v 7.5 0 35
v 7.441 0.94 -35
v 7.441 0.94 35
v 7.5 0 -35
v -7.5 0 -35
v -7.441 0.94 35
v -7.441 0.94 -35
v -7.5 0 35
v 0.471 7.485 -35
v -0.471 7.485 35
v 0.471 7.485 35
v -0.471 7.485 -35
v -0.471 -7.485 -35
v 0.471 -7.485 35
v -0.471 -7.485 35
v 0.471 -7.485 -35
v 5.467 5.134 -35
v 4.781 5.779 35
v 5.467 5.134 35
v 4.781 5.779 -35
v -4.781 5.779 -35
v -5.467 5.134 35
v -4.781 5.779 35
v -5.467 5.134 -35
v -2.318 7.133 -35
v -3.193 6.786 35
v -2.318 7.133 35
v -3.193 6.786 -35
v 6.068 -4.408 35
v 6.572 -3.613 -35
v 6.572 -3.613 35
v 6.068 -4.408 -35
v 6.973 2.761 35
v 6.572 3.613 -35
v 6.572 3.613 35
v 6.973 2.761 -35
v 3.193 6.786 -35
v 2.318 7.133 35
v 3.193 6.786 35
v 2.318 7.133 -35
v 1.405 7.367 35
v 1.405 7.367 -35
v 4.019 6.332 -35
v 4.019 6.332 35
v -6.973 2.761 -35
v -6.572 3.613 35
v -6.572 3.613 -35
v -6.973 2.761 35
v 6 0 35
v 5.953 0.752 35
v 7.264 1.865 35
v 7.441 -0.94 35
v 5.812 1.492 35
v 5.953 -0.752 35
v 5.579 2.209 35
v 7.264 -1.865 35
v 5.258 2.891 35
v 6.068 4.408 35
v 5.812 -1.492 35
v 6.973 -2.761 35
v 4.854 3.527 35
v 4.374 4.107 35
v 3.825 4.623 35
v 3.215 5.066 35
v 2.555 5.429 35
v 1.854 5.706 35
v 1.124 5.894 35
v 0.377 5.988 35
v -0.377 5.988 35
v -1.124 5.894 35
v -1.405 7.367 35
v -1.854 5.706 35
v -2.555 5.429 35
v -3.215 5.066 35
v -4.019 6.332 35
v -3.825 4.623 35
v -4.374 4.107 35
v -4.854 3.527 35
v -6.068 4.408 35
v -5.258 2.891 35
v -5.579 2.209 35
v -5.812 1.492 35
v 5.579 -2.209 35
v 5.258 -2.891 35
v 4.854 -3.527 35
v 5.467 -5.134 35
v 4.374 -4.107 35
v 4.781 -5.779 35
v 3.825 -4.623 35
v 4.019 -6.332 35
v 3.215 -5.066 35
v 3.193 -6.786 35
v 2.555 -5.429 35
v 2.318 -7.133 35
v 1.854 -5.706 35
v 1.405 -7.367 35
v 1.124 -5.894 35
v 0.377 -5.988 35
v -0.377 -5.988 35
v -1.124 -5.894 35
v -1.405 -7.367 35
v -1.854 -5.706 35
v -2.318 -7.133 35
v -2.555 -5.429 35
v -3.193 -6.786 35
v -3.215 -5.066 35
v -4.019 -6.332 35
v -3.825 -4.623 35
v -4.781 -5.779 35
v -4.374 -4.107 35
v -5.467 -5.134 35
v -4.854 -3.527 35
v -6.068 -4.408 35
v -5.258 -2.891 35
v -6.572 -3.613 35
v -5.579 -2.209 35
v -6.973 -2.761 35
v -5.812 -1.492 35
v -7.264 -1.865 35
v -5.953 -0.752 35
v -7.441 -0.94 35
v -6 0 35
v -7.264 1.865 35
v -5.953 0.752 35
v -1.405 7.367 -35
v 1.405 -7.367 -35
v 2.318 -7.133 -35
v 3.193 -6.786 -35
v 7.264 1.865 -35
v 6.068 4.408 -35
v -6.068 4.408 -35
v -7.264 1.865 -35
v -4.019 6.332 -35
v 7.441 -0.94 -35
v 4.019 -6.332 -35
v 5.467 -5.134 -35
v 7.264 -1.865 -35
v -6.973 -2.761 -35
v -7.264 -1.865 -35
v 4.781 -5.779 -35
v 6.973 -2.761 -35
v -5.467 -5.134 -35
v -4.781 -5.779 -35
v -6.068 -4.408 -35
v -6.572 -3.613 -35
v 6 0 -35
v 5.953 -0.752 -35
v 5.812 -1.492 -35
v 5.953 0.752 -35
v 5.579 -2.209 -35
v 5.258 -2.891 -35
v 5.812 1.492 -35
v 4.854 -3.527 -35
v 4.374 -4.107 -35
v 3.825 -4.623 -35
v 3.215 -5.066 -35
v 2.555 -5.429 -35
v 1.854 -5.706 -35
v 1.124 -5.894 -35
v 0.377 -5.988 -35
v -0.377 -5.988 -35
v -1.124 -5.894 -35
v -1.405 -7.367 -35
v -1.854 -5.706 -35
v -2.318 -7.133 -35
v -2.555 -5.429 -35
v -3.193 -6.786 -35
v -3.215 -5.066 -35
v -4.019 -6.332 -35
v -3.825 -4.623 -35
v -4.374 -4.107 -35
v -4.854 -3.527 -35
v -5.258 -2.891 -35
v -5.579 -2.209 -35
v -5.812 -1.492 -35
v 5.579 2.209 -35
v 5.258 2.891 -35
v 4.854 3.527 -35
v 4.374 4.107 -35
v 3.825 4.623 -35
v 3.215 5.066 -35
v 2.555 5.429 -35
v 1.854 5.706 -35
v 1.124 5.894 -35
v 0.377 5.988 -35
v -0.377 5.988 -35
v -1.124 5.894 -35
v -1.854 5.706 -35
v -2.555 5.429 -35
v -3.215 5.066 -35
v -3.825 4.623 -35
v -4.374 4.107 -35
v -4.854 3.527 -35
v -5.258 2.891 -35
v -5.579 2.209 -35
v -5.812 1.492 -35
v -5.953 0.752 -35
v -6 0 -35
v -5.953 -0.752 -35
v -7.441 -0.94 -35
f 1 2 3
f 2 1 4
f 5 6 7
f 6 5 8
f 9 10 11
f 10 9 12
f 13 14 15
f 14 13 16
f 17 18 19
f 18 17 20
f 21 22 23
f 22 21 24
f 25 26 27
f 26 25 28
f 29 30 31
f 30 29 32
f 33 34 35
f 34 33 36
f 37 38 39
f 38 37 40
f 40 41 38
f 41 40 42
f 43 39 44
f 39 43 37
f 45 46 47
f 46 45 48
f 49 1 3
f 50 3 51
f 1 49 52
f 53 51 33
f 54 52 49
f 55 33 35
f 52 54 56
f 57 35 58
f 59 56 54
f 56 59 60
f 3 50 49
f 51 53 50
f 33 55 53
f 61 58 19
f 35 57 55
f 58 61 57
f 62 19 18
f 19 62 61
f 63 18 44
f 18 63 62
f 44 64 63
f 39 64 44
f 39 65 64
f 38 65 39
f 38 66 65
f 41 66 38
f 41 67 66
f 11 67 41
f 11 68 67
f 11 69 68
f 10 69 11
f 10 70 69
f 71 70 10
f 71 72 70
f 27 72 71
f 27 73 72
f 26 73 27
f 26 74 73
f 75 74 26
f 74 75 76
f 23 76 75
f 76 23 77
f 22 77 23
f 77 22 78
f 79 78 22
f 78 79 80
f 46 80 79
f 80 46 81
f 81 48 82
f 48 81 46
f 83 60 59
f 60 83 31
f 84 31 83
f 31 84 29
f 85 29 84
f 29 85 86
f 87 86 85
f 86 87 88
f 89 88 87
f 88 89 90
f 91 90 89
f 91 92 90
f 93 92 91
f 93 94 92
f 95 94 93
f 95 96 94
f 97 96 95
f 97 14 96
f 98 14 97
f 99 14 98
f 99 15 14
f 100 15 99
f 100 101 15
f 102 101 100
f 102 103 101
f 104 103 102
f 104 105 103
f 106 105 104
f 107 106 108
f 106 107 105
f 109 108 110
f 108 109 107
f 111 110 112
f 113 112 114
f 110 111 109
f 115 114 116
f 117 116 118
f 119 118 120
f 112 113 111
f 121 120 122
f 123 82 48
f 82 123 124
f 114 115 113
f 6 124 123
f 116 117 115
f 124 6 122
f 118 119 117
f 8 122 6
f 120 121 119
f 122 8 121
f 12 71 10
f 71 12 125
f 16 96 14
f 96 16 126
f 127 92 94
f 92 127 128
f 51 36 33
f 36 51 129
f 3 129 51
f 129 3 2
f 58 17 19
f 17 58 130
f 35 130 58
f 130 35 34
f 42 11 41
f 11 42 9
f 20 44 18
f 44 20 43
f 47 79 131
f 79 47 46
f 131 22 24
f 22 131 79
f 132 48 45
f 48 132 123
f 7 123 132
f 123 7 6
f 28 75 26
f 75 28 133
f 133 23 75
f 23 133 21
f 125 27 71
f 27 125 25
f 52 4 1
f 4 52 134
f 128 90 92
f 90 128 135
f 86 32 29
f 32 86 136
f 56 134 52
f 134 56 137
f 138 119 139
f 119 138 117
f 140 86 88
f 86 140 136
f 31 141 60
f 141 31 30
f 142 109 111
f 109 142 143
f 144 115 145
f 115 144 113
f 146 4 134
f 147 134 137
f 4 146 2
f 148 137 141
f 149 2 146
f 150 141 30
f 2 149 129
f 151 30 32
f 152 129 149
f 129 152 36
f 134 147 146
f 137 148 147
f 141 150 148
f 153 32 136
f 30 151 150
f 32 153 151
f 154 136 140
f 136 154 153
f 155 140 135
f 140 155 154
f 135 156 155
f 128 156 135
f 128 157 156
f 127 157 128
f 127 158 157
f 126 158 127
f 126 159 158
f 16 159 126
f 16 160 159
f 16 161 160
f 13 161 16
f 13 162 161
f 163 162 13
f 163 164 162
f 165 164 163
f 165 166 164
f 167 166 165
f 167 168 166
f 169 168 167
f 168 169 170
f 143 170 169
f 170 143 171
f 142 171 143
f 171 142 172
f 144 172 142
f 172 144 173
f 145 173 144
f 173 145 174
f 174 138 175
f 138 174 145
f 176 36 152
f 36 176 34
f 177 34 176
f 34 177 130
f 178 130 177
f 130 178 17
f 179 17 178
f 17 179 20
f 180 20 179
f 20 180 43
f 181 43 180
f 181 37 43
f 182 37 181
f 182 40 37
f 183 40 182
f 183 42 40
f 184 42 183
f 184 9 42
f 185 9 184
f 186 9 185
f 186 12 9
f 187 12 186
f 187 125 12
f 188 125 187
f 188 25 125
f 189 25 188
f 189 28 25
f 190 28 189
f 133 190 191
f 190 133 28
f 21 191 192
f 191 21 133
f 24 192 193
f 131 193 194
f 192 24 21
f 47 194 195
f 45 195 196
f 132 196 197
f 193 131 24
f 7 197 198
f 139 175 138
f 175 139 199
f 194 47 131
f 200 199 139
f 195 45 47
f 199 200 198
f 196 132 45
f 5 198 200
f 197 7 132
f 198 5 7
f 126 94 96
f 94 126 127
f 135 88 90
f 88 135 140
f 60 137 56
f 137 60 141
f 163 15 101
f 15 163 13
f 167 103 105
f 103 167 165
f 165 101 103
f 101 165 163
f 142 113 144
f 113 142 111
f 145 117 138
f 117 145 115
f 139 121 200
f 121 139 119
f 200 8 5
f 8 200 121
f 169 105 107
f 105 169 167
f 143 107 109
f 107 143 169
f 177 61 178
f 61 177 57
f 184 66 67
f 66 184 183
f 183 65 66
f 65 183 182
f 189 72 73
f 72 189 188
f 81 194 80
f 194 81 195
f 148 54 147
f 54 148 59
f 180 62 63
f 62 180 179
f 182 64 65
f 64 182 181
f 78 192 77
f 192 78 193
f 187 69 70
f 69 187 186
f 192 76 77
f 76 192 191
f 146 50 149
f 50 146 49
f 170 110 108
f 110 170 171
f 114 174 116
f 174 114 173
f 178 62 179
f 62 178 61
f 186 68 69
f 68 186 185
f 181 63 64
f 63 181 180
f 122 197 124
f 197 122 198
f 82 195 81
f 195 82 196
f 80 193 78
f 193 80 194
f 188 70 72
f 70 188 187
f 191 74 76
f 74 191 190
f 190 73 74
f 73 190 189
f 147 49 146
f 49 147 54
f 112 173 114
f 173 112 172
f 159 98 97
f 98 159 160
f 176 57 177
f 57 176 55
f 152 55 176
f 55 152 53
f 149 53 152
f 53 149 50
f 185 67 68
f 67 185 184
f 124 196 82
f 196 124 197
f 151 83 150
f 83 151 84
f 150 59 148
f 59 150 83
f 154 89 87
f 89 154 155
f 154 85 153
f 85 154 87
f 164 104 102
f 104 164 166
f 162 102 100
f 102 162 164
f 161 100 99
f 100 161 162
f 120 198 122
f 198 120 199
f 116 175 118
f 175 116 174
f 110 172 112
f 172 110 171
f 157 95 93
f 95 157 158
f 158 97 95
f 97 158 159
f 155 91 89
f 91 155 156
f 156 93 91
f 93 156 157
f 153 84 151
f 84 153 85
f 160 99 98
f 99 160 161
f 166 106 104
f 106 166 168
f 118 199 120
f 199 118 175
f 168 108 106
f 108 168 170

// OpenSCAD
$fn = 50;


difference() {
	union() {
		translate(v = [0, 0, -35.0000000000]) {
			cylinder(h = 70, r = 7.5000000000);
		}
	}
	union() {
		translate(v = [0, 0, -100.0000000000]) {
			cylinder(h = 200, r = 6);
		}
	}
}
